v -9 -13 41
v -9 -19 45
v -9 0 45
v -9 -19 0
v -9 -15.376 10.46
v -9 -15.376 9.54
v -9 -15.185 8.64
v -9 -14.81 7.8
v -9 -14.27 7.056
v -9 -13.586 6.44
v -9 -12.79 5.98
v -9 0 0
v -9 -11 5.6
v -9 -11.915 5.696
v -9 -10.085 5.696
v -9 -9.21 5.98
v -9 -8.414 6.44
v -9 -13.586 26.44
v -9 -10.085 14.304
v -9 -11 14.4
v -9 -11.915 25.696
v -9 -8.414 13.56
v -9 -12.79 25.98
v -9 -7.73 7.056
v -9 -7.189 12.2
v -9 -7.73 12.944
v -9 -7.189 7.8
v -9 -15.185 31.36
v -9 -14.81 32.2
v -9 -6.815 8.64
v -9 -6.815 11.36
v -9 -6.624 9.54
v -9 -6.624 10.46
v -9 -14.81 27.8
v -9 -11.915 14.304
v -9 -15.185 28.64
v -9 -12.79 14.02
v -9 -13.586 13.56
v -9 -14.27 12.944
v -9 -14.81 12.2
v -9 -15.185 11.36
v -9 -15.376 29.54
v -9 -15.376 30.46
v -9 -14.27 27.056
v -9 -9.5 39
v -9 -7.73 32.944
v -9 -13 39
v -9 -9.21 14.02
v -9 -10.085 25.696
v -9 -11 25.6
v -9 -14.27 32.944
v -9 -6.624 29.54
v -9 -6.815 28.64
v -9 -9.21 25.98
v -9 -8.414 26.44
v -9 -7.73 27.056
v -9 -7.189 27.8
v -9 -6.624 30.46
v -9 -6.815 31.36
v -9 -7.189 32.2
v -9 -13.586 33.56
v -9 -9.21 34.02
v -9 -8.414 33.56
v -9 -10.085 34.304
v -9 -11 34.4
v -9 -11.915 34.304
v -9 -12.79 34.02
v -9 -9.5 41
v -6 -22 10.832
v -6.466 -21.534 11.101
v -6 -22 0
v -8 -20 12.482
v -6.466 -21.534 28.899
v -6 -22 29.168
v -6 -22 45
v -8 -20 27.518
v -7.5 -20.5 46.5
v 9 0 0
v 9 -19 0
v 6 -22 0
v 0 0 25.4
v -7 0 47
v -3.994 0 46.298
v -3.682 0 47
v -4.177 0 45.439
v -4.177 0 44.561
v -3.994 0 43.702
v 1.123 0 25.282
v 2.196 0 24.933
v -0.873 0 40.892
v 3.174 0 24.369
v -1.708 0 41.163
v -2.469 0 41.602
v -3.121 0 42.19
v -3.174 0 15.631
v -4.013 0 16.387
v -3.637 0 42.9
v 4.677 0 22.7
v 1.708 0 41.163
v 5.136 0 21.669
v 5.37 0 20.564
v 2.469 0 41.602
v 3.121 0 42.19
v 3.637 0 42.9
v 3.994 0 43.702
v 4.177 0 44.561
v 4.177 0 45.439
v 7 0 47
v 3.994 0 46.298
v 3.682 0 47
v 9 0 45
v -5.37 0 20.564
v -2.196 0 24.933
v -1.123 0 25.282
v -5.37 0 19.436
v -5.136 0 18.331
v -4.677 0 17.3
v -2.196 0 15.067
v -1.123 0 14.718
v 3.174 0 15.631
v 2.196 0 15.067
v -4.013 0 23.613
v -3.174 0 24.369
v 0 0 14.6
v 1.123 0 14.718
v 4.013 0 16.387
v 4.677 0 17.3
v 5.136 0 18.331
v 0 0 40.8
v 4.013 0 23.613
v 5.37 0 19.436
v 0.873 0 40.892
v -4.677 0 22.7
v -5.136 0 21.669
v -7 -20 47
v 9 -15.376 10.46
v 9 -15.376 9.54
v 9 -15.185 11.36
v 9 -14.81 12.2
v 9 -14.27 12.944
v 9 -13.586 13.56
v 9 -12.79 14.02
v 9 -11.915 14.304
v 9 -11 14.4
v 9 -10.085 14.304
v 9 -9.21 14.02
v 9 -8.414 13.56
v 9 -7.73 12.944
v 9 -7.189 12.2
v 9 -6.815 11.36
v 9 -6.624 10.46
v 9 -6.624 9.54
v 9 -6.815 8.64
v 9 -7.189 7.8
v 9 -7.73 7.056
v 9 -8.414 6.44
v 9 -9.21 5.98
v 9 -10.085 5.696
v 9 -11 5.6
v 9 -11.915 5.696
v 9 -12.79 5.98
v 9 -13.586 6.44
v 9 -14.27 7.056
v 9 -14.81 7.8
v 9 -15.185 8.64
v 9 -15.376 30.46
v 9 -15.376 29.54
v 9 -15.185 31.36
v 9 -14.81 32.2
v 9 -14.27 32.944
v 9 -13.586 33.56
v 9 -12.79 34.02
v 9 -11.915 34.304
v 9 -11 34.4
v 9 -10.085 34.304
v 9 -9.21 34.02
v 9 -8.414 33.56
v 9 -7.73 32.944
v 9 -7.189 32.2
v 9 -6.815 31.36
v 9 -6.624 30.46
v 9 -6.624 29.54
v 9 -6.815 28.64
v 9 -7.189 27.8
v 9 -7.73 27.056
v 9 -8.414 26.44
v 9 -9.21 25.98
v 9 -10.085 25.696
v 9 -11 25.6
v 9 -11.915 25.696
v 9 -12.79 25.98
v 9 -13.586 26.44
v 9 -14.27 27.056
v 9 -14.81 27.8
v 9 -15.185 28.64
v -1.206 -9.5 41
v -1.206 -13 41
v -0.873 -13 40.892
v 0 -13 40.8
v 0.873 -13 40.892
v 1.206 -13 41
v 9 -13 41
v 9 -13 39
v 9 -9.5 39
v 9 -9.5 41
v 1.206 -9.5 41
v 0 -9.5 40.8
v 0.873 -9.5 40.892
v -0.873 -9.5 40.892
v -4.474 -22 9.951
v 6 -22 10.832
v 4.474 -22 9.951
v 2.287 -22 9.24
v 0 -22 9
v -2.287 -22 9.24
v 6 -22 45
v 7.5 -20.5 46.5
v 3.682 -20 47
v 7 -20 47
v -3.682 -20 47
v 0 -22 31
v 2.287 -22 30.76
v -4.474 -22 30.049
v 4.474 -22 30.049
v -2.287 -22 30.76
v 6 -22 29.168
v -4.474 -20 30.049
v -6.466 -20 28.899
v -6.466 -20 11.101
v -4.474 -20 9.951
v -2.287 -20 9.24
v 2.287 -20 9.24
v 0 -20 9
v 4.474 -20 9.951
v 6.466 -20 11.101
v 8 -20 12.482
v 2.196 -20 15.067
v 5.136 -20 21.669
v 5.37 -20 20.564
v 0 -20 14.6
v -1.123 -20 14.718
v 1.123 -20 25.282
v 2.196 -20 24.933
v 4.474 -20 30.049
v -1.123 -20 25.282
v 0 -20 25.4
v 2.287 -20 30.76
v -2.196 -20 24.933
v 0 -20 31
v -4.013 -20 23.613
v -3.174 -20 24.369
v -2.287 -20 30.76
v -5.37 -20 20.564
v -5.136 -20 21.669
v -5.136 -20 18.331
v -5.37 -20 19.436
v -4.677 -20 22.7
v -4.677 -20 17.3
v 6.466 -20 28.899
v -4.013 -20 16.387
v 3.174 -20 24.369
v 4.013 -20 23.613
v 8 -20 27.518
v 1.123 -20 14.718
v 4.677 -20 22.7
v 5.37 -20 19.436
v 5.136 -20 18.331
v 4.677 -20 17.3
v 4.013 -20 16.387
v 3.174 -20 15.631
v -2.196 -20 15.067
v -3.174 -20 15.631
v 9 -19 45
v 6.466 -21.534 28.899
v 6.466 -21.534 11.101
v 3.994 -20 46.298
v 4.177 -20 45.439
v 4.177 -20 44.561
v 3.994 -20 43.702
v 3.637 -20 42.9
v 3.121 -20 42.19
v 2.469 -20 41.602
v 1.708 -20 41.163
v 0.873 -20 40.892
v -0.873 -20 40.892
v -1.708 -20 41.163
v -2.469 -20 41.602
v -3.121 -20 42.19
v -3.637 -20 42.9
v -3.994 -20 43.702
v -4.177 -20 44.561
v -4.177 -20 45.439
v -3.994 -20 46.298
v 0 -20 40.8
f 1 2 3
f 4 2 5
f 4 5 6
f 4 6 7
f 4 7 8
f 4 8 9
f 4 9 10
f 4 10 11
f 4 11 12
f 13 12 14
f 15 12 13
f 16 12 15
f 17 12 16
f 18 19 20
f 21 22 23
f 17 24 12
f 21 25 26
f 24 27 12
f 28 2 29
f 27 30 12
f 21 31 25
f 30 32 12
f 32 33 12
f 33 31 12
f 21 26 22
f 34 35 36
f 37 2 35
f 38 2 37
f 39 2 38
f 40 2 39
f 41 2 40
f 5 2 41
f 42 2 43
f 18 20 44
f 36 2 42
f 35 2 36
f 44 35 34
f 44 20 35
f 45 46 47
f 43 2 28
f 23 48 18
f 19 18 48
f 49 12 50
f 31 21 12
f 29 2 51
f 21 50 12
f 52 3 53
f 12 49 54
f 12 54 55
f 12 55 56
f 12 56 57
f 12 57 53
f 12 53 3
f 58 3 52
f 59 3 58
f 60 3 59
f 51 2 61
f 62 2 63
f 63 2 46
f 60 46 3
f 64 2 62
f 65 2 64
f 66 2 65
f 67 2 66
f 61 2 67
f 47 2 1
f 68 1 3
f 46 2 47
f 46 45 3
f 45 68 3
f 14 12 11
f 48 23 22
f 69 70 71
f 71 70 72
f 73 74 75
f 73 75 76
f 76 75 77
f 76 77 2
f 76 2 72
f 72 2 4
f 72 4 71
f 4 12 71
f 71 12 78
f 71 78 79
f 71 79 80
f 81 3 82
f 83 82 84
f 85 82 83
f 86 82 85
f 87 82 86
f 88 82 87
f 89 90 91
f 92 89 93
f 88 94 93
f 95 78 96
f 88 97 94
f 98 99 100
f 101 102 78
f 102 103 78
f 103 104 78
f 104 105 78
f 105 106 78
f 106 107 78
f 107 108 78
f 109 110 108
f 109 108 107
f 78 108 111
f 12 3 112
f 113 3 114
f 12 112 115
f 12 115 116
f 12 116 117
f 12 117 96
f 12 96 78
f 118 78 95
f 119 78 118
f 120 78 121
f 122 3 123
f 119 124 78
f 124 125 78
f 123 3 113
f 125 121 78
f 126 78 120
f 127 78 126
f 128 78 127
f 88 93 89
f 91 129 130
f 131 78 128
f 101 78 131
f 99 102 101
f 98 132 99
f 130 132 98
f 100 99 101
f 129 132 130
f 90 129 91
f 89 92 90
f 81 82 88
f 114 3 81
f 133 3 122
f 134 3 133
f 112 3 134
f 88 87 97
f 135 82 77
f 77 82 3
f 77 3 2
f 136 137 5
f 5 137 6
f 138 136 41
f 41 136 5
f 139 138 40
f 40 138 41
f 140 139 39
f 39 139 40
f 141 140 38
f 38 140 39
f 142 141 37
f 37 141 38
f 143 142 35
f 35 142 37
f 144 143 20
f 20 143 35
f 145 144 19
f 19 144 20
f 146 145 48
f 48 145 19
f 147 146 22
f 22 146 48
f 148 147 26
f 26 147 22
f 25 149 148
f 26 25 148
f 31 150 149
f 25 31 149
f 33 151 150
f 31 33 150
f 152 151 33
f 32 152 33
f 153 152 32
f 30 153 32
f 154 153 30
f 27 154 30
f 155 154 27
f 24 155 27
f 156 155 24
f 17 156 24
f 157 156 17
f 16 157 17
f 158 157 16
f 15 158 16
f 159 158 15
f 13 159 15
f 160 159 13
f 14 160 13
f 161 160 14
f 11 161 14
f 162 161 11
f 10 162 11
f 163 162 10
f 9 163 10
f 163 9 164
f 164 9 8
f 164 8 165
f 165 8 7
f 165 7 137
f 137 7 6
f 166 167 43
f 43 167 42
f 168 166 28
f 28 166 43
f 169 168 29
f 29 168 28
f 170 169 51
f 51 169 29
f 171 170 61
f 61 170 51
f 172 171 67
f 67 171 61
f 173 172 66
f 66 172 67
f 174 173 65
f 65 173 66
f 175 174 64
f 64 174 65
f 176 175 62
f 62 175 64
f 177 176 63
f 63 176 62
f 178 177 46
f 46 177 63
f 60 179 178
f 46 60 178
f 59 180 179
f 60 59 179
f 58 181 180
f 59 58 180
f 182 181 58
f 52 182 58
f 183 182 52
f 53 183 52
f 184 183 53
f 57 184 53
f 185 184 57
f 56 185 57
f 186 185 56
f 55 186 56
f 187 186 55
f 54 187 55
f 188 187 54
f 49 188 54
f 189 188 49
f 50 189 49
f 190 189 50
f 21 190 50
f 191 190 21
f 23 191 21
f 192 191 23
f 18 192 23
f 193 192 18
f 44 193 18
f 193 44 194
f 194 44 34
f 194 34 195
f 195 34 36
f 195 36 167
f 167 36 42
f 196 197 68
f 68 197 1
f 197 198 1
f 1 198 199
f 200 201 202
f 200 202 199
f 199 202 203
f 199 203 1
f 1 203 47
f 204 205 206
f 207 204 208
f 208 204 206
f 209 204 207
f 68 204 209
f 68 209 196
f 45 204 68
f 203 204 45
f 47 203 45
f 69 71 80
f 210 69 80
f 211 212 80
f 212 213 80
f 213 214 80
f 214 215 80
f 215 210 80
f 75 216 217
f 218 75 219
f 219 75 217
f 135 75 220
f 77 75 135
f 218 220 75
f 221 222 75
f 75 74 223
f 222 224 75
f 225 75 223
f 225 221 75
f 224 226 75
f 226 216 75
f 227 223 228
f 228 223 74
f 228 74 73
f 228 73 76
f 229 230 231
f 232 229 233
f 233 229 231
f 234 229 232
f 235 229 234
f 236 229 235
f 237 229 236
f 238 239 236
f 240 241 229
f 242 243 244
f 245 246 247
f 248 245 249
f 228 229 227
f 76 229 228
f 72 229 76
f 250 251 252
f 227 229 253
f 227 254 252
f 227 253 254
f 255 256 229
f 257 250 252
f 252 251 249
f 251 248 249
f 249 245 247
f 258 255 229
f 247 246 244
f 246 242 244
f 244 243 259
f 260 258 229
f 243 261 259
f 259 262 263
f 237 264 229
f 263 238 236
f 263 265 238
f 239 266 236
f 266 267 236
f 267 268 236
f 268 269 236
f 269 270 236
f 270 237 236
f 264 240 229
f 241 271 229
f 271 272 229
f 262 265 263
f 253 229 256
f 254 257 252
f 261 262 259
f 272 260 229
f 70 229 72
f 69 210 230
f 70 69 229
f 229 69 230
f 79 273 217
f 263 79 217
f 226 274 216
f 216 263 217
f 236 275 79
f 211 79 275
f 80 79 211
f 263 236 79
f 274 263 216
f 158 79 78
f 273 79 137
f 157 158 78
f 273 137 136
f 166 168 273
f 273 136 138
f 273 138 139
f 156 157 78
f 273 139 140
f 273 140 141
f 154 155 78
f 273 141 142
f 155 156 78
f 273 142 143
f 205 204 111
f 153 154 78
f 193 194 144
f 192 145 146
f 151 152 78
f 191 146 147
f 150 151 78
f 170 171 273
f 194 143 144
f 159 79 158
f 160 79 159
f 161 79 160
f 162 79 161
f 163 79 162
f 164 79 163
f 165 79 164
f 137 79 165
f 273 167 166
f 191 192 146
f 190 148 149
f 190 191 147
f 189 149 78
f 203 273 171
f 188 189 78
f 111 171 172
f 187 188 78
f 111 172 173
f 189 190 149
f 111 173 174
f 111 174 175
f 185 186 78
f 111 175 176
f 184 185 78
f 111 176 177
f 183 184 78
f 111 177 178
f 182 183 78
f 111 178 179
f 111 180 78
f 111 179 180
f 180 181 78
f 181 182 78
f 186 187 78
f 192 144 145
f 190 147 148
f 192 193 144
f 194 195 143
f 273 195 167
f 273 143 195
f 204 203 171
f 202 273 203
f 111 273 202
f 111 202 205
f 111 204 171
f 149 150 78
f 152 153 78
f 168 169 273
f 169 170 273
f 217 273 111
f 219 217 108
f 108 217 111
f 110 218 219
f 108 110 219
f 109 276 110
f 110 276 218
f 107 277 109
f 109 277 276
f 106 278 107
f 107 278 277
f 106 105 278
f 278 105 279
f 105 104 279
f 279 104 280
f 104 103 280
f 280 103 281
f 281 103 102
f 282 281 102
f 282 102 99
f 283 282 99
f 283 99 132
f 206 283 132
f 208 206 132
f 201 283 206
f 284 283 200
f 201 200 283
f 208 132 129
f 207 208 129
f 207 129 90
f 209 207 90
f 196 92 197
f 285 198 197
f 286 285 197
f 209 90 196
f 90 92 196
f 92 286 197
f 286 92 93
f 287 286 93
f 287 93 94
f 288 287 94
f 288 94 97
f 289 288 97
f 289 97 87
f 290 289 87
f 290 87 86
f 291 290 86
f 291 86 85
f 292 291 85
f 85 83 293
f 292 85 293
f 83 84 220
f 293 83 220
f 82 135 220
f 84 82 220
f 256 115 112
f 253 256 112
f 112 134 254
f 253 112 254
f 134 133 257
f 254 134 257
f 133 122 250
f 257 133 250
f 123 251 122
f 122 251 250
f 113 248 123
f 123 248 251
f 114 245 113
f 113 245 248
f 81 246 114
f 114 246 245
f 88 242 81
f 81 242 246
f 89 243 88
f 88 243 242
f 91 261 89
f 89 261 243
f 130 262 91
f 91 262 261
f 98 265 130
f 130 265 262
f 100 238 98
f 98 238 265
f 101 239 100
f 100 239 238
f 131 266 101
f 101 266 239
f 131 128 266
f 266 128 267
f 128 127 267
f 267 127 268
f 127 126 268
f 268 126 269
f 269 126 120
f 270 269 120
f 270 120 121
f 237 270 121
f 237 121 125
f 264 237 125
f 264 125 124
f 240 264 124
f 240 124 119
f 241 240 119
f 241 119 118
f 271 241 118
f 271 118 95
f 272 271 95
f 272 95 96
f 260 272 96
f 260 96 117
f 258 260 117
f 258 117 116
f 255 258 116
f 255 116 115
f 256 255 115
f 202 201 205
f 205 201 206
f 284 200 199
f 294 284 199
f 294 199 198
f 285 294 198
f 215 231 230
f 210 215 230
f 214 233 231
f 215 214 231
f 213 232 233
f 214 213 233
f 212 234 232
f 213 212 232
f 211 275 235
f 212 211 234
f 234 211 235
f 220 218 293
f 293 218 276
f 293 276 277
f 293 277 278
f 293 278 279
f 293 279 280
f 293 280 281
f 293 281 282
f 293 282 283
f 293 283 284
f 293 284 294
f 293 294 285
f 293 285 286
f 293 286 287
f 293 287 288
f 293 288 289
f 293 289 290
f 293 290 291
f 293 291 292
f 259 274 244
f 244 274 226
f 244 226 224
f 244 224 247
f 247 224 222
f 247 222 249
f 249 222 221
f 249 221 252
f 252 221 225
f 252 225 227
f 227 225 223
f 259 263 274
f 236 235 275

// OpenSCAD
// PRUSA iteration3
// Y frame corners
// GNU GPL v3
// Josef Průša <iam@josefprusa.cz> and contributors
// http://www.reprap.org/wiki/Prusa_Mendel
// http://prusamendel.org


module corner_base(){        
 translate([-9,-11,0])cube([18,22,47]);
}

module corner_holes(){
 translate([-11,-11,0]){
  // Bottom hole
  translate([0,11,10]) rotate([0,90,0]) translate([0,0,-5]) cylinder(h = 270, r=4.4, $fn=30);
  // Top hole
  translate([0,11,30]) rotate([0,90,0]) translate([0,0,-5]) cylinder(h = 270, r=4.4, $fn=30);
  // Middle hole
  translate([11,0,20]) rotate([0,0,90]) rotate([0,90,0]) translate([0,0,-5]) cylinder(h = 270, r=5.4, $fn=30);

  // Washer hole
  translate([11,-3,20]) rotate([0,0,90]) rotate([0,90,0]) translate([0,0,-5]) cylinder(h = 10, r=11, $fn=30);

  // Top smooth rod insert
  // Smooth rod place
  translate([11,2,45]) rotate([0,90,90]) cylinder(h = 270, r=4.2, $fn=30); 
  // Ziptie
  translate([-5,9,39])  cube([30,3.5,2]);
 }
}

module corner_fancy(){
 // Side corner cutouts
  translate([-8,-9,0]) rotate([0,0,-45-180]) translate([-15,0,-1]) cube([30,30,51]);
  translate([8,-9,0]) rotate([0,0,45-180]) translate([-15,0,-1]) cube([30,30,51]);
 // Top corner cutouts
  translate([7,0,49-2]) rotate([0,45,0]) translate([-15,-15,0]) cube([30,30,30]);
  translate([-7,0,49-2]) rotate([0,-45,0]) translate([-15,-15,0]) cube([30,30,30]);
  rotate([0,0,90]){
   translate([-9,0,49-2]) rotate([0,-45,0]) translate([-15,-15,0]) cube([30,30,30]);
  }
}


// Final part
module corner(){
 // Rotate the part for better printing
 translate([0,0,11]) rotate([-90,0,0]) difference(){
  corner_base();
  corner_holes();
  corner_fancy();
 }
}

rotate([90,0,0]) corner();
